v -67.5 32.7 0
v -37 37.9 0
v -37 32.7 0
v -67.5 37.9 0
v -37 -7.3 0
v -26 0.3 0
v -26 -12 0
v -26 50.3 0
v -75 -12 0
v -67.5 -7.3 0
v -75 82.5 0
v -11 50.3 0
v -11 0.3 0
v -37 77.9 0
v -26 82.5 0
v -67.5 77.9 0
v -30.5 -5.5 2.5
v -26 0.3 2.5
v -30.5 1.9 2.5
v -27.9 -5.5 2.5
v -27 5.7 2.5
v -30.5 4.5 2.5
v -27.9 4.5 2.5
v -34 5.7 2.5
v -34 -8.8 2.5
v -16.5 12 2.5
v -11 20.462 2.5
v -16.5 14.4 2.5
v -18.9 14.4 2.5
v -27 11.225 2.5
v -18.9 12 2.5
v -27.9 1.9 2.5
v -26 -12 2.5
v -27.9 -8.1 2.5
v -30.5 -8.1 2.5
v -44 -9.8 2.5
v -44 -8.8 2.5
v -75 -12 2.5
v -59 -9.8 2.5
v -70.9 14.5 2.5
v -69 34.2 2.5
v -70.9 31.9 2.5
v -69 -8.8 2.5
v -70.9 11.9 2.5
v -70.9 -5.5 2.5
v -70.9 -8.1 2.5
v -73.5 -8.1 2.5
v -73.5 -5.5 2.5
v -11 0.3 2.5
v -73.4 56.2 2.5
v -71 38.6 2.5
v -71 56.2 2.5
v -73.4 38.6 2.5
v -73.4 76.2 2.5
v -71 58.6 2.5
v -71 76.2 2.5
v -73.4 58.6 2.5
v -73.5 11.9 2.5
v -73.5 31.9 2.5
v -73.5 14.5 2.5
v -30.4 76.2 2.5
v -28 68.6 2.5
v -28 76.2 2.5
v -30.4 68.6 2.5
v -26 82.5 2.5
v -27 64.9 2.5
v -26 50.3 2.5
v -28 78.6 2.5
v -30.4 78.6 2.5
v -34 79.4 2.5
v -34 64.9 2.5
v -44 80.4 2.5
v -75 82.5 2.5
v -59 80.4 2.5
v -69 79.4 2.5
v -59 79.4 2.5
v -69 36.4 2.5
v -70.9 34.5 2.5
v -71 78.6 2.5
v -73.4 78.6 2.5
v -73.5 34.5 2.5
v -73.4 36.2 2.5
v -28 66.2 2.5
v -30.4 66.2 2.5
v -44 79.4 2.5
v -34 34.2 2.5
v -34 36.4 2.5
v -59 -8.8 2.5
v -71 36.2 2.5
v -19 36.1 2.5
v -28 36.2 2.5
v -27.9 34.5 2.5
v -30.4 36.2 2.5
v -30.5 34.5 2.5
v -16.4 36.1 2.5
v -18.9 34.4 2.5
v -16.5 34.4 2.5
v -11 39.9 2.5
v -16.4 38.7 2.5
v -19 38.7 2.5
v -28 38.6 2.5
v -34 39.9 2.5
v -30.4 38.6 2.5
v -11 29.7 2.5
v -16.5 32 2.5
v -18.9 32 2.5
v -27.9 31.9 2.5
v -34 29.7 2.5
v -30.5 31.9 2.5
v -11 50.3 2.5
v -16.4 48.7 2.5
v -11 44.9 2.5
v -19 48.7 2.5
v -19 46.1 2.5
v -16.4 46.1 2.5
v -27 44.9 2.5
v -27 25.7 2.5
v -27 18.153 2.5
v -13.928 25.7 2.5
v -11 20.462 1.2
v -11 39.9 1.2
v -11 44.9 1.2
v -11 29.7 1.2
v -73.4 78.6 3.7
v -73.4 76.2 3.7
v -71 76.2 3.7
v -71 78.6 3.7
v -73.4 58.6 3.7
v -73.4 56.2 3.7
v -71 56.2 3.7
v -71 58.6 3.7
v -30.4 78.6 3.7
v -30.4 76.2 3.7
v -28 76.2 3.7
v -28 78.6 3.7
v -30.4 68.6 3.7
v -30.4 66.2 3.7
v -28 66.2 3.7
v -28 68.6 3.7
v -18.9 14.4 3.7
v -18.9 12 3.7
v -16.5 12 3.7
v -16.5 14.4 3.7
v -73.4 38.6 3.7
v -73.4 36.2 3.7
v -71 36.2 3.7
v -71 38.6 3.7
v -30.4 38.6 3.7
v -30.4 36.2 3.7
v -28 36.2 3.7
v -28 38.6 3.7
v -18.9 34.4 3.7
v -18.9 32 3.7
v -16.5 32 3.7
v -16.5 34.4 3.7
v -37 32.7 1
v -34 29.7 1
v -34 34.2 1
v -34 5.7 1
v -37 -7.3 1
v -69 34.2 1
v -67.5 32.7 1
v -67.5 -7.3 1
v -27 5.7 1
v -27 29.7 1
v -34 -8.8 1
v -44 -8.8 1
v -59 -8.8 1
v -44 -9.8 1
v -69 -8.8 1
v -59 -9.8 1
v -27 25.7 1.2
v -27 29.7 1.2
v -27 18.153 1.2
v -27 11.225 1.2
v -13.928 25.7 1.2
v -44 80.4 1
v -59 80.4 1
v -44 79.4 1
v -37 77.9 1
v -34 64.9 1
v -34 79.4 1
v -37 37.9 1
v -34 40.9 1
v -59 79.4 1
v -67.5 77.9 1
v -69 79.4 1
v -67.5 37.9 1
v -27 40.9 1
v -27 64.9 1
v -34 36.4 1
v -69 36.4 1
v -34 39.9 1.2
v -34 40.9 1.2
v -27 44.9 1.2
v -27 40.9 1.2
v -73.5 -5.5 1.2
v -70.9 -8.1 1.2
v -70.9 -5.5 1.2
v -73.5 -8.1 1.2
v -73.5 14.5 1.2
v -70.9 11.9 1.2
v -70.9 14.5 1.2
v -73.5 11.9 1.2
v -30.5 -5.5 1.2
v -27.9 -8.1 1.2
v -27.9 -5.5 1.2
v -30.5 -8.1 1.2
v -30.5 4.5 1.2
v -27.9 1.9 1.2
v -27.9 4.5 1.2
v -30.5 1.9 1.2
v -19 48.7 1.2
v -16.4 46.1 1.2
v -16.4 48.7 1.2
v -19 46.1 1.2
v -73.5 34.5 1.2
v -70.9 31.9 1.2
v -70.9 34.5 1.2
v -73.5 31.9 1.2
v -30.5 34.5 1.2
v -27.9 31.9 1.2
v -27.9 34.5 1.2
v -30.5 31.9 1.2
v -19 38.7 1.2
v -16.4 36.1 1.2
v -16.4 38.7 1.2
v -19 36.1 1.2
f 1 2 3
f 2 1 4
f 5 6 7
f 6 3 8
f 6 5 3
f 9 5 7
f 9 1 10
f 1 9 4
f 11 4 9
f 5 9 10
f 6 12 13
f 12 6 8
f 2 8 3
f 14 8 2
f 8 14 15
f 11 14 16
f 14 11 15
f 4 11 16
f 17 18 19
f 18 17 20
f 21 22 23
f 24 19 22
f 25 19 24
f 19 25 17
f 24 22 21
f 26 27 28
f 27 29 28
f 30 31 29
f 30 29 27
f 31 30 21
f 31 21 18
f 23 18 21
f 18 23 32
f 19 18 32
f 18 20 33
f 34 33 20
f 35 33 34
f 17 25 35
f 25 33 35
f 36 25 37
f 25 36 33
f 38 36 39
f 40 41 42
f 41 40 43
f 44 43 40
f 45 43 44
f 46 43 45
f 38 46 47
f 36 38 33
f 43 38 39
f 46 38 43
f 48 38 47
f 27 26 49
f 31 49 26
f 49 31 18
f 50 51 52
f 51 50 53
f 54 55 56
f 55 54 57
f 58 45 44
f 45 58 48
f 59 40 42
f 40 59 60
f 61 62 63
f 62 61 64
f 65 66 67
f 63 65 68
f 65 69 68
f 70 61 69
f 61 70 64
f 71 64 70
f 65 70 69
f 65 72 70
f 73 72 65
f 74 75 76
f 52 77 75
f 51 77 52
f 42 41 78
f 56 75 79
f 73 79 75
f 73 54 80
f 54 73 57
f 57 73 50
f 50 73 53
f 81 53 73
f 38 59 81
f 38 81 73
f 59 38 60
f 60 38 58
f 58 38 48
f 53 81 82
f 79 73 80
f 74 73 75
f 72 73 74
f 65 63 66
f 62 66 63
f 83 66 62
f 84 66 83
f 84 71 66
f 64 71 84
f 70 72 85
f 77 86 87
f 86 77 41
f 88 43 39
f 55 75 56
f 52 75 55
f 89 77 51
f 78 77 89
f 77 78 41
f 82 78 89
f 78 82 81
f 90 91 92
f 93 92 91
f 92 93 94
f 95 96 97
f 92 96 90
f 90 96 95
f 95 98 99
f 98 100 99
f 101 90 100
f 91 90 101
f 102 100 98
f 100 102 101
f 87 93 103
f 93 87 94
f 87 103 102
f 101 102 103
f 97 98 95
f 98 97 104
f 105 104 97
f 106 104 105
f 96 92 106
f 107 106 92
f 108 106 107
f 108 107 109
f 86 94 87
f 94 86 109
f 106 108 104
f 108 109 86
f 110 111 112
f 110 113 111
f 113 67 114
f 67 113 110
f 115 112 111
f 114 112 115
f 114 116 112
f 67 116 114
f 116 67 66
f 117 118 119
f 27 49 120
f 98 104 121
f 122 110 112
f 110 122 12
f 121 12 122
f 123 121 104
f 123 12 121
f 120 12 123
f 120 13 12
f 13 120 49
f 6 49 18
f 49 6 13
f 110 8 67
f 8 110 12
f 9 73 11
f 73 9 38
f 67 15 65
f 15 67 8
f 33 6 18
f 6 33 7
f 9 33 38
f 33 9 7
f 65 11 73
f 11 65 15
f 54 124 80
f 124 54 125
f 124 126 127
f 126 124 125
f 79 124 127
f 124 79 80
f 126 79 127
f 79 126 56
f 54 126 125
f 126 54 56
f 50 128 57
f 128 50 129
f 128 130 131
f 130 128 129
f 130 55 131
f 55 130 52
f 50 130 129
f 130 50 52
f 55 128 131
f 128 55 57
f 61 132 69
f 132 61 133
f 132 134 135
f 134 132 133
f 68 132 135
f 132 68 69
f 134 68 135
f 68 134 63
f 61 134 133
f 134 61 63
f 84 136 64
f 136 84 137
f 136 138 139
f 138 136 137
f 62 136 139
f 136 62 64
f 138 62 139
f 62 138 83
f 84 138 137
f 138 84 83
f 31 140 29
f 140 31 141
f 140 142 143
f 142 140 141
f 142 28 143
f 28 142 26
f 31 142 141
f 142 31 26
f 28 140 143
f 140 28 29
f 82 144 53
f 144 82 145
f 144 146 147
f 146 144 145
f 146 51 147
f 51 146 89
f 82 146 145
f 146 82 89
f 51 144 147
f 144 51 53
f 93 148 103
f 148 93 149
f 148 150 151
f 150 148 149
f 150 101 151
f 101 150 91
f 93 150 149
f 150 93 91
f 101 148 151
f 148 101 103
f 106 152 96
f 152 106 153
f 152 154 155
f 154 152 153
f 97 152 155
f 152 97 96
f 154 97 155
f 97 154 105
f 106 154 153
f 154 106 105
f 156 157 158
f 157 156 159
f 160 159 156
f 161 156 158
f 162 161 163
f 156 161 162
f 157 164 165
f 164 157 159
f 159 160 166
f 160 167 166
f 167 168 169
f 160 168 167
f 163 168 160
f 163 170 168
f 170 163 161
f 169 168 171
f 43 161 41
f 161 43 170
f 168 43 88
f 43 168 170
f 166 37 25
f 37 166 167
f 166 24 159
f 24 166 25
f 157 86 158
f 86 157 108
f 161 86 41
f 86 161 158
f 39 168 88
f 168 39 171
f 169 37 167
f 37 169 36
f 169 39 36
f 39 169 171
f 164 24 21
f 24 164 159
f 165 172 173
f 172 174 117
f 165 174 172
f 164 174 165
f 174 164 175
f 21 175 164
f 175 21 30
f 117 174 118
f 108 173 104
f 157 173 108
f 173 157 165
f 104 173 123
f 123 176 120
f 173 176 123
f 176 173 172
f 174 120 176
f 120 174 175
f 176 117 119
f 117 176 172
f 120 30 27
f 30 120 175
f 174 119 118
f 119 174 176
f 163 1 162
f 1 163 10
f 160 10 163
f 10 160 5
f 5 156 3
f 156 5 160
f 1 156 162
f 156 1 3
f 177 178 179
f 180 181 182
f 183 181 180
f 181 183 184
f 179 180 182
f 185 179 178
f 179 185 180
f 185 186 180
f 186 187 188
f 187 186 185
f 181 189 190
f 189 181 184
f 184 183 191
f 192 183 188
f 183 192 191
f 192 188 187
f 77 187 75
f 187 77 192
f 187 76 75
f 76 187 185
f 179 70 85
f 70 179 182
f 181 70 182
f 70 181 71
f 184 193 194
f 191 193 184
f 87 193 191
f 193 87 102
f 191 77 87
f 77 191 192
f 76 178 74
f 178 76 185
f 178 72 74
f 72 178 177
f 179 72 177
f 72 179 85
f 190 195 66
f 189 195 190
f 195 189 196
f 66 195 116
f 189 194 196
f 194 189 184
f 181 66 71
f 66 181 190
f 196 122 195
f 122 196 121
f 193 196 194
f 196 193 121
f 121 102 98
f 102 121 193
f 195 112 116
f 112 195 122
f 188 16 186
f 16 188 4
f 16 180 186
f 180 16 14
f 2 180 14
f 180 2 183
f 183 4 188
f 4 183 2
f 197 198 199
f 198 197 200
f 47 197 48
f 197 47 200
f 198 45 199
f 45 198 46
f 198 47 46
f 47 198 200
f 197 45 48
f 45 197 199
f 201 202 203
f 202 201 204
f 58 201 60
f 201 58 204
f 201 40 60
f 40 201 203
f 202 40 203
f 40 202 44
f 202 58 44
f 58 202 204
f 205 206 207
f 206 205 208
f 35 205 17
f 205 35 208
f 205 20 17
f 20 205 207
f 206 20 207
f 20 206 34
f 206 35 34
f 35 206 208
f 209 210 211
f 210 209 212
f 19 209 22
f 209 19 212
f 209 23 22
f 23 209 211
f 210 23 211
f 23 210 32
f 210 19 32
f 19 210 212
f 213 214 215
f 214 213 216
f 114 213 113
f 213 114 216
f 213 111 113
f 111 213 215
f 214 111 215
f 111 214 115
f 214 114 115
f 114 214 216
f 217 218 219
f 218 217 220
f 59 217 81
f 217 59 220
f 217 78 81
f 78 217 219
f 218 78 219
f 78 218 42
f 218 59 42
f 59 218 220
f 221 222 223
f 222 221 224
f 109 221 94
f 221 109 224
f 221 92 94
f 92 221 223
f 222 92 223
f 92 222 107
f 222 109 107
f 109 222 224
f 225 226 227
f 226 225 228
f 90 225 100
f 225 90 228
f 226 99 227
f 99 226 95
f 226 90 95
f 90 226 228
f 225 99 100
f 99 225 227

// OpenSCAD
//mot yet finished

rotate([0,-90,0]) translate([0, 0, 04]) difference() {
    union() {
        //translate([0, 0.3, 8]) cube([2.5, 70, 46]);
        
        translate([0, 0.3, 7]) cube([2.5, 50, 20]);
        translate([0, -12, 22]) cube([2.5, 94.5, 49]);
        translate([2.5, 76.2, 67]) cube([1.2, 2.4,2.4]);
        translate([2.5, 56.2, 67]) cube([1.2, 2.4,2.4]);
        translate([2.5, 76.2, 24]) cube([1.2, 2.4,2.4]);
        translate([2.5, 66.2, 24]) cube([1.2, 2.4,2.4]);
        translate([2.5, 12, 12.5]) cube([1.2, 2.4,2.4]);
        translate([2.5, 36.2, 67]) cube([1.2, 2.4,2.4]);
        translate([2.5, 36.2, 24]) cube([1.2, 2.4,2.4]);
        translate([2.5, 32, 12.5]) cube([1.2, 2.4,2.4]);
    }
    
    //corners
    translate([1.2, 1.9-10, 66.9]) cube([1.3, 2.6,2.6]);
    translate([1.2, 1.9+10, 66.9]) cube([1.3, 2.6,2.6]);
    translate([1.2, 1.9-10, 23.9]) cube([1.3, 2.6,2.6]);
    translate([1.2, 1.9, 23.9]) cube([1.3, 2.6,2.6]);
    translate([1.2, 46.1, 12.4]) cube([1.3, 2.6,2.6]);
    translate([1.2, 31.9, 66.9]) cube([1.3, 2.6,2.6]);
    translate([1.2, 31.9, 23.9]) cube([1.3, 2.6,2.6]);
    translate([1.2, 36.1, 12.4]) cube([1.3, 2.6,2.6]);
    
   
    
    translate([0,34.7,23]) mirror([0,-1,0]) {
        translate([1, 0.5, 7]) cube([1.5, 43, 35]);
        translate([1, 40.5, 17]) cube([1.5, 4, 15]);
        translate([1, 5, 0]) cube([1.5, 24, 10]);
        
        //for wires
        translate([1.2,5,-40]) cube([2, 4, 40]);
        translate([1.2,5,-20]) rotate([-30,0,0]) cube([2, 6, 30]);
        
        translate([0,2,10]) cube([5,40,30.5]);
    }

    
    translate([0,35.9,23]) {
        translate([1, 0.5, 7]) cube([1.5, 43, 35]);
        translate([1, 40.5, 17]) cube([1.5, 4, 15]);
        translate([1, 5, 0]) cube([1.5, 24, 10]);
        
        //for wires
        translate([1.2,4,-20]) cube([2, 5, 40]);
        //translate([1.2,5,-20]) rotate([-30,0,0]) cube([2, 6, 30]);
        
        translate([0,2,10]) cube([5,40,30.5]);
        
    }
}
